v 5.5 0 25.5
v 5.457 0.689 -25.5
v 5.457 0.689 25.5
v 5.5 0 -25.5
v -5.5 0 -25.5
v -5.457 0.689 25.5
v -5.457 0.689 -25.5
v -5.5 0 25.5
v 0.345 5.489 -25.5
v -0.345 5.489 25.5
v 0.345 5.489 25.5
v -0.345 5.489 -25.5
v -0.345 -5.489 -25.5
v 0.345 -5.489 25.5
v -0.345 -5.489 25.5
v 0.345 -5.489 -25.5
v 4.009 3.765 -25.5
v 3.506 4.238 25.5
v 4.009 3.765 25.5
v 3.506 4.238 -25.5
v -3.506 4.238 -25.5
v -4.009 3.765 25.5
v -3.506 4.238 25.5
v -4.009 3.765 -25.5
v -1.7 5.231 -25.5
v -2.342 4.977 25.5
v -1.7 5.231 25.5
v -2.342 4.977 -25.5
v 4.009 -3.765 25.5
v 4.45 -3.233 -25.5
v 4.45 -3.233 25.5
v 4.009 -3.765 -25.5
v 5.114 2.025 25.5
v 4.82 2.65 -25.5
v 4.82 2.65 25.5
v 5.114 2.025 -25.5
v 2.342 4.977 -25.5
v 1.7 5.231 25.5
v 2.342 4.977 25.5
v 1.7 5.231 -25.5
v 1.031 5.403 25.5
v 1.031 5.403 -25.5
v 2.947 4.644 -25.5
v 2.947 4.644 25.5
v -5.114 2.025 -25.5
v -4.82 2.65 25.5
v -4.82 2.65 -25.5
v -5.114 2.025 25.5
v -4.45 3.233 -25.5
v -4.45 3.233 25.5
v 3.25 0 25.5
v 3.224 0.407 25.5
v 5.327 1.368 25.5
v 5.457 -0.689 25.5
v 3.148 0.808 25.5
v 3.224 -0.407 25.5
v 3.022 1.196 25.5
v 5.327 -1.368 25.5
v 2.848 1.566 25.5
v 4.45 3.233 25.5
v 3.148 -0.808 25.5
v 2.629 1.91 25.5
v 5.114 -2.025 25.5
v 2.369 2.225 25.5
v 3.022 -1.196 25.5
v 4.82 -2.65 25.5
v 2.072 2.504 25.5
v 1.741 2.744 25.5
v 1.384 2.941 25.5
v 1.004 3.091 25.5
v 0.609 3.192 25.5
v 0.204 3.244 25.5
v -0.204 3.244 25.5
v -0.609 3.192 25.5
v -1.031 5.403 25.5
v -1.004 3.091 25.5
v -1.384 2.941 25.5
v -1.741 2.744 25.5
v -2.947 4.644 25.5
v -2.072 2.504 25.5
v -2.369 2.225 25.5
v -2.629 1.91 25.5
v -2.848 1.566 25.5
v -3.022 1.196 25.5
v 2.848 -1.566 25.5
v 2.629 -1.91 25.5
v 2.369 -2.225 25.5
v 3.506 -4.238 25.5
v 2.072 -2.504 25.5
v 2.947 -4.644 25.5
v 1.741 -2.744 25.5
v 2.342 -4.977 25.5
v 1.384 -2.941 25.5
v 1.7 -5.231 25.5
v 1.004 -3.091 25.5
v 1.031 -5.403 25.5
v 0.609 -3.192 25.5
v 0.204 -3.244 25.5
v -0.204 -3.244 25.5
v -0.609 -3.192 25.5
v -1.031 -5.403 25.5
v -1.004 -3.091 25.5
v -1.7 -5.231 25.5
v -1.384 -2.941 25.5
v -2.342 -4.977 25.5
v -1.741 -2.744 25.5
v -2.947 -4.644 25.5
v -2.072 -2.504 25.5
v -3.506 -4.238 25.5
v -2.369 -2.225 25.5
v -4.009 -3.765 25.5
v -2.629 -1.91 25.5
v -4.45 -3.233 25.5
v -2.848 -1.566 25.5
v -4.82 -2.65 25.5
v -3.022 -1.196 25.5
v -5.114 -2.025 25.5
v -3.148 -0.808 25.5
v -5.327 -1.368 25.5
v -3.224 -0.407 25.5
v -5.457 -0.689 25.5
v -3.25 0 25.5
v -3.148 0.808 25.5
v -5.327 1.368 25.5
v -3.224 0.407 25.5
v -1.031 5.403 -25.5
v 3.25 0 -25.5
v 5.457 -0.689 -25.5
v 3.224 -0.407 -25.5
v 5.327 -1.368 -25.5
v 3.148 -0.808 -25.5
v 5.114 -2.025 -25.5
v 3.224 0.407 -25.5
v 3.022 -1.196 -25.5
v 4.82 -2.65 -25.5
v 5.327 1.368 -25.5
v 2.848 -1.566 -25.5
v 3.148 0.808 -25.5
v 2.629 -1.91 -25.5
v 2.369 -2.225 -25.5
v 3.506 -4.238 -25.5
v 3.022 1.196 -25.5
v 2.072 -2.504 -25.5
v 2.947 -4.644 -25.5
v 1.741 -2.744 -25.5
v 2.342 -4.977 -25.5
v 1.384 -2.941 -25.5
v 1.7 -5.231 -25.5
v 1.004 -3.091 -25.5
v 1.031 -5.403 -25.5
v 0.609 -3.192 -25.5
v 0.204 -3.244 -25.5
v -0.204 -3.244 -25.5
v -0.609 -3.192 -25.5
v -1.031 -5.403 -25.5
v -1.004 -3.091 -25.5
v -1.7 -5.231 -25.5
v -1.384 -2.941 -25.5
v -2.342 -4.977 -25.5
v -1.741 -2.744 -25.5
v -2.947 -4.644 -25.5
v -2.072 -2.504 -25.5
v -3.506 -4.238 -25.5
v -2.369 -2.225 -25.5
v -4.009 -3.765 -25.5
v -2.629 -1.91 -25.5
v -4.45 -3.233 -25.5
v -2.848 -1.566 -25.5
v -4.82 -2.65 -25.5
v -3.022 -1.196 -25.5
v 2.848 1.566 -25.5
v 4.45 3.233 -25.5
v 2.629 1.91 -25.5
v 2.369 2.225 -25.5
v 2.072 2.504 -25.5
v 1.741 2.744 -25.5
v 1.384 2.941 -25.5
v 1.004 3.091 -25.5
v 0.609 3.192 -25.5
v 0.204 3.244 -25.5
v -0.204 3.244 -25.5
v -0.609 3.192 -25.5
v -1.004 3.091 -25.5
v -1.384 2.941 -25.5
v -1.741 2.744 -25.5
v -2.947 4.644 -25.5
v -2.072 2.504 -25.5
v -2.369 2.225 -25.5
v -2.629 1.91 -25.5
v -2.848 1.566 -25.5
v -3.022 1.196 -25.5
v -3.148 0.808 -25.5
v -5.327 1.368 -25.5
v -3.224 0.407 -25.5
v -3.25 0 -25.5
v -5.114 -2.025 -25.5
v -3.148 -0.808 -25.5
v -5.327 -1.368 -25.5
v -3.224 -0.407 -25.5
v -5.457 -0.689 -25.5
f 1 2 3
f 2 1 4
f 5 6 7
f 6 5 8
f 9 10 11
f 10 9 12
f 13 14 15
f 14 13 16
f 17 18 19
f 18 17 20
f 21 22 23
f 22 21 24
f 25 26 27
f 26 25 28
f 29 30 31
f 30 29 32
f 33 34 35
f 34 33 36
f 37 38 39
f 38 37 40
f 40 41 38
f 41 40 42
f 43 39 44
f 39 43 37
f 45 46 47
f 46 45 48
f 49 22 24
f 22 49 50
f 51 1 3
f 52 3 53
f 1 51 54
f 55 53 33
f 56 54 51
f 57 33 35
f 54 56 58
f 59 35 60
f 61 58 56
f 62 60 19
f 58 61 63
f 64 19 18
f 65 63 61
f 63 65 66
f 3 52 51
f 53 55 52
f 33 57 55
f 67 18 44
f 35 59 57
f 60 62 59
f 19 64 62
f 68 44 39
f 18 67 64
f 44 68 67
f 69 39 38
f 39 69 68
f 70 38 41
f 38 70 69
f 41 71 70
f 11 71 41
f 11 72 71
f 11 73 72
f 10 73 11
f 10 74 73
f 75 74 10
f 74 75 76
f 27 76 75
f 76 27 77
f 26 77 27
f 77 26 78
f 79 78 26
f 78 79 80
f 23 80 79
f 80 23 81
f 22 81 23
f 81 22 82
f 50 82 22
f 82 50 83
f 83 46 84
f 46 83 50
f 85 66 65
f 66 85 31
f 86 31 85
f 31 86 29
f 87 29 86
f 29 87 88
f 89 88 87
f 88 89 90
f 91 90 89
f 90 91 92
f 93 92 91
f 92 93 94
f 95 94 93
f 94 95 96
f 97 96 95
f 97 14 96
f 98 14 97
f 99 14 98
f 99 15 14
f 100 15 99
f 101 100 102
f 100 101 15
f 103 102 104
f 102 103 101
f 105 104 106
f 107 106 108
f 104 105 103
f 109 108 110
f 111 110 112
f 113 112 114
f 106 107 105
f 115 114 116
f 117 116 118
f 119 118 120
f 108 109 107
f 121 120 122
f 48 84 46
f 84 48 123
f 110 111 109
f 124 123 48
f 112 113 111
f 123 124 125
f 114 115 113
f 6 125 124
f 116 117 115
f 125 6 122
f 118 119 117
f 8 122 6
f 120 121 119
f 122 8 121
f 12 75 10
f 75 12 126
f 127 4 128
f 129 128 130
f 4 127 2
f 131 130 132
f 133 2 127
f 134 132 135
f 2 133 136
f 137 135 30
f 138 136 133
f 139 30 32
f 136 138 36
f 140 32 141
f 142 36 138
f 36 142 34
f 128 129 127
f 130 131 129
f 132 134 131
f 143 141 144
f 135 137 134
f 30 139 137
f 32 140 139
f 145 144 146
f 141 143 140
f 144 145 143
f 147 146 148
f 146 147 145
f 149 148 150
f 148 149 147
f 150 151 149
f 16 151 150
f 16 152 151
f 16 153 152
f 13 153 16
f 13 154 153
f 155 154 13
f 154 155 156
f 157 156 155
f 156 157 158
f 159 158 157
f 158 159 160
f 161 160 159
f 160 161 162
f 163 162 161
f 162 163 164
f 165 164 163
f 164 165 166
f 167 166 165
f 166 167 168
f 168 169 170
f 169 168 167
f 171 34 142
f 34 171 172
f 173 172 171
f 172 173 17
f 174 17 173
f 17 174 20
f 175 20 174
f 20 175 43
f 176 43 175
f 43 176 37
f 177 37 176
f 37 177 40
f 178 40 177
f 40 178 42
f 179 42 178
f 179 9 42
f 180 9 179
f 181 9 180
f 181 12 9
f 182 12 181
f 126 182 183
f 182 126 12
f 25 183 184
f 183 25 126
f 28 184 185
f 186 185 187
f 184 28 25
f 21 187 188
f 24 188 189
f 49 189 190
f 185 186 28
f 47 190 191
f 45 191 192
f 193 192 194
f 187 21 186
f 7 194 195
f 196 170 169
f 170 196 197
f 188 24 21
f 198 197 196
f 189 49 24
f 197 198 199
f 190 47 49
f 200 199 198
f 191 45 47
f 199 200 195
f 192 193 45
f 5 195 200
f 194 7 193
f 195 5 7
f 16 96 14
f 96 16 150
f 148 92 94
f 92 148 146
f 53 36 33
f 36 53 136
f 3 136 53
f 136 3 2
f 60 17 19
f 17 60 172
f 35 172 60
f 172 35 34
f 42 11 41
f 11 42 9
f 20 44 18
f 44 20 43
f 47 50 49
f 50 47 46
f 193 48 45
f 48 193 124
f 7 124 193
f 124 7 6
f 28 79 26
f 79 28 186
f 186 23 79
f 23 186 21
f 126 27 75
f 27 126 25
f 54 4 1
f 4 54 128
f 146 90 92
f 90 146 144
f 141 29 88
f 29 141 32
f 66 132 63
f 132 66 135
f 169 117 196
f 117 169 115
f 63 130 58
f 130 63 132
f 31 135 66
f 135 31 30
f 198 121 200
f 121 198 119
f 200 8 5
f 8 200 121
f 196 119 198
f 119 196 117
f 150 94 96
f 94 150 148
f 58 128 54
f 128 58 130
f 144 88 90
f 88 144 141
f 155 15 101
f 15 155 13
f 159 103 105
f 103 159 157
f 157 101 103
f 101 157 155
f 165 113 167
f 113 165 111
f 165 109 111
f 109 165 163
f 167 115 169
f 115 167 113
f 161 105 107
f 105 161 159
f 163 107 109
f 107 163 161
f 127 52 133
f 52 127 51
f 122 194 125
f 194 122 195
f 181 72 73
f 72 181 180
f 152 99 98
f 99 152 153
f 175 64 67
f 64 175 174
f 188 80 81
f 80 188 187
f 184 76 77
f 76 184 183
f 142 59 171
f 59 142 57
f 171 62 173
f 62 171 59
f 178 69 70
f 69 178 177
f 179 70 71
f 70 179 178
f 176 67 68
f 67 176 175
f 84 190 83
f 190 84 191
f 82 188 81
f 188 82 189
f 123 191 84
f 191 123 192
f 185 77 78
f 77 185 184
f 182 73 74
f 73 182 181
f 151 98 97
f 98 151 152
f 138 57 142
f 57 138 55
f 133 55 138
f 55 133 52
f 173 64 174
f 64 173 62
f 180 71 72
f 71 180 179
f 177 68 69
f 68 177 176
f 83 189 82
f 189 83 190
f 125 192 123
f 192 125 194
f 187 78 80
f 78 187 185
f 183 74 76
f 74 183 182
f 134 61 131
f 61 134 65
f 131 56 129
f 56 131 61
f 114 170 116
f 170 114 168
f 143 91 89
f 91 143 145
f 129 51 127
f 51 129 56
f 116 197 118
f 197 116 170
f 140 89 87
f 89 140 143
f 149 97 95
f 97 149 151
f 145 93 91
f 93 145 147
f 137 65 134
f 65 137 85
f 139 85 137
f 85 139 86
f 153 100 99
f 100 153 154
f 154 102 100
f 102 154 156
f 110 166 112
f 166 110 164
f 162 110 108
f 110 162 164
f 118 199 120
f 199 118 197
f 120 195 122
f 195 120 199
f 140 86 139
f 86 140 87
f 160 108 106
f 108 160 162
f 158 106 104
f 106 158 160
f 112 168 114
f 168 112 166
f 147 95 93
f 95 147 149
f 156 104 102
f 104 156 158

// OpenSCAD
$fn = 50;


difference() {
	union() {
		translate(v = [0, 0, -25.5000000000]) {
			cylinder(h = 51, r = 5.5000000000);
		}
	}
	union() {
		translate(v = [0, 0, -100.0000000000]) {
			cylinder(h = 200, r = 3.2500000000);
		}
	}
}
